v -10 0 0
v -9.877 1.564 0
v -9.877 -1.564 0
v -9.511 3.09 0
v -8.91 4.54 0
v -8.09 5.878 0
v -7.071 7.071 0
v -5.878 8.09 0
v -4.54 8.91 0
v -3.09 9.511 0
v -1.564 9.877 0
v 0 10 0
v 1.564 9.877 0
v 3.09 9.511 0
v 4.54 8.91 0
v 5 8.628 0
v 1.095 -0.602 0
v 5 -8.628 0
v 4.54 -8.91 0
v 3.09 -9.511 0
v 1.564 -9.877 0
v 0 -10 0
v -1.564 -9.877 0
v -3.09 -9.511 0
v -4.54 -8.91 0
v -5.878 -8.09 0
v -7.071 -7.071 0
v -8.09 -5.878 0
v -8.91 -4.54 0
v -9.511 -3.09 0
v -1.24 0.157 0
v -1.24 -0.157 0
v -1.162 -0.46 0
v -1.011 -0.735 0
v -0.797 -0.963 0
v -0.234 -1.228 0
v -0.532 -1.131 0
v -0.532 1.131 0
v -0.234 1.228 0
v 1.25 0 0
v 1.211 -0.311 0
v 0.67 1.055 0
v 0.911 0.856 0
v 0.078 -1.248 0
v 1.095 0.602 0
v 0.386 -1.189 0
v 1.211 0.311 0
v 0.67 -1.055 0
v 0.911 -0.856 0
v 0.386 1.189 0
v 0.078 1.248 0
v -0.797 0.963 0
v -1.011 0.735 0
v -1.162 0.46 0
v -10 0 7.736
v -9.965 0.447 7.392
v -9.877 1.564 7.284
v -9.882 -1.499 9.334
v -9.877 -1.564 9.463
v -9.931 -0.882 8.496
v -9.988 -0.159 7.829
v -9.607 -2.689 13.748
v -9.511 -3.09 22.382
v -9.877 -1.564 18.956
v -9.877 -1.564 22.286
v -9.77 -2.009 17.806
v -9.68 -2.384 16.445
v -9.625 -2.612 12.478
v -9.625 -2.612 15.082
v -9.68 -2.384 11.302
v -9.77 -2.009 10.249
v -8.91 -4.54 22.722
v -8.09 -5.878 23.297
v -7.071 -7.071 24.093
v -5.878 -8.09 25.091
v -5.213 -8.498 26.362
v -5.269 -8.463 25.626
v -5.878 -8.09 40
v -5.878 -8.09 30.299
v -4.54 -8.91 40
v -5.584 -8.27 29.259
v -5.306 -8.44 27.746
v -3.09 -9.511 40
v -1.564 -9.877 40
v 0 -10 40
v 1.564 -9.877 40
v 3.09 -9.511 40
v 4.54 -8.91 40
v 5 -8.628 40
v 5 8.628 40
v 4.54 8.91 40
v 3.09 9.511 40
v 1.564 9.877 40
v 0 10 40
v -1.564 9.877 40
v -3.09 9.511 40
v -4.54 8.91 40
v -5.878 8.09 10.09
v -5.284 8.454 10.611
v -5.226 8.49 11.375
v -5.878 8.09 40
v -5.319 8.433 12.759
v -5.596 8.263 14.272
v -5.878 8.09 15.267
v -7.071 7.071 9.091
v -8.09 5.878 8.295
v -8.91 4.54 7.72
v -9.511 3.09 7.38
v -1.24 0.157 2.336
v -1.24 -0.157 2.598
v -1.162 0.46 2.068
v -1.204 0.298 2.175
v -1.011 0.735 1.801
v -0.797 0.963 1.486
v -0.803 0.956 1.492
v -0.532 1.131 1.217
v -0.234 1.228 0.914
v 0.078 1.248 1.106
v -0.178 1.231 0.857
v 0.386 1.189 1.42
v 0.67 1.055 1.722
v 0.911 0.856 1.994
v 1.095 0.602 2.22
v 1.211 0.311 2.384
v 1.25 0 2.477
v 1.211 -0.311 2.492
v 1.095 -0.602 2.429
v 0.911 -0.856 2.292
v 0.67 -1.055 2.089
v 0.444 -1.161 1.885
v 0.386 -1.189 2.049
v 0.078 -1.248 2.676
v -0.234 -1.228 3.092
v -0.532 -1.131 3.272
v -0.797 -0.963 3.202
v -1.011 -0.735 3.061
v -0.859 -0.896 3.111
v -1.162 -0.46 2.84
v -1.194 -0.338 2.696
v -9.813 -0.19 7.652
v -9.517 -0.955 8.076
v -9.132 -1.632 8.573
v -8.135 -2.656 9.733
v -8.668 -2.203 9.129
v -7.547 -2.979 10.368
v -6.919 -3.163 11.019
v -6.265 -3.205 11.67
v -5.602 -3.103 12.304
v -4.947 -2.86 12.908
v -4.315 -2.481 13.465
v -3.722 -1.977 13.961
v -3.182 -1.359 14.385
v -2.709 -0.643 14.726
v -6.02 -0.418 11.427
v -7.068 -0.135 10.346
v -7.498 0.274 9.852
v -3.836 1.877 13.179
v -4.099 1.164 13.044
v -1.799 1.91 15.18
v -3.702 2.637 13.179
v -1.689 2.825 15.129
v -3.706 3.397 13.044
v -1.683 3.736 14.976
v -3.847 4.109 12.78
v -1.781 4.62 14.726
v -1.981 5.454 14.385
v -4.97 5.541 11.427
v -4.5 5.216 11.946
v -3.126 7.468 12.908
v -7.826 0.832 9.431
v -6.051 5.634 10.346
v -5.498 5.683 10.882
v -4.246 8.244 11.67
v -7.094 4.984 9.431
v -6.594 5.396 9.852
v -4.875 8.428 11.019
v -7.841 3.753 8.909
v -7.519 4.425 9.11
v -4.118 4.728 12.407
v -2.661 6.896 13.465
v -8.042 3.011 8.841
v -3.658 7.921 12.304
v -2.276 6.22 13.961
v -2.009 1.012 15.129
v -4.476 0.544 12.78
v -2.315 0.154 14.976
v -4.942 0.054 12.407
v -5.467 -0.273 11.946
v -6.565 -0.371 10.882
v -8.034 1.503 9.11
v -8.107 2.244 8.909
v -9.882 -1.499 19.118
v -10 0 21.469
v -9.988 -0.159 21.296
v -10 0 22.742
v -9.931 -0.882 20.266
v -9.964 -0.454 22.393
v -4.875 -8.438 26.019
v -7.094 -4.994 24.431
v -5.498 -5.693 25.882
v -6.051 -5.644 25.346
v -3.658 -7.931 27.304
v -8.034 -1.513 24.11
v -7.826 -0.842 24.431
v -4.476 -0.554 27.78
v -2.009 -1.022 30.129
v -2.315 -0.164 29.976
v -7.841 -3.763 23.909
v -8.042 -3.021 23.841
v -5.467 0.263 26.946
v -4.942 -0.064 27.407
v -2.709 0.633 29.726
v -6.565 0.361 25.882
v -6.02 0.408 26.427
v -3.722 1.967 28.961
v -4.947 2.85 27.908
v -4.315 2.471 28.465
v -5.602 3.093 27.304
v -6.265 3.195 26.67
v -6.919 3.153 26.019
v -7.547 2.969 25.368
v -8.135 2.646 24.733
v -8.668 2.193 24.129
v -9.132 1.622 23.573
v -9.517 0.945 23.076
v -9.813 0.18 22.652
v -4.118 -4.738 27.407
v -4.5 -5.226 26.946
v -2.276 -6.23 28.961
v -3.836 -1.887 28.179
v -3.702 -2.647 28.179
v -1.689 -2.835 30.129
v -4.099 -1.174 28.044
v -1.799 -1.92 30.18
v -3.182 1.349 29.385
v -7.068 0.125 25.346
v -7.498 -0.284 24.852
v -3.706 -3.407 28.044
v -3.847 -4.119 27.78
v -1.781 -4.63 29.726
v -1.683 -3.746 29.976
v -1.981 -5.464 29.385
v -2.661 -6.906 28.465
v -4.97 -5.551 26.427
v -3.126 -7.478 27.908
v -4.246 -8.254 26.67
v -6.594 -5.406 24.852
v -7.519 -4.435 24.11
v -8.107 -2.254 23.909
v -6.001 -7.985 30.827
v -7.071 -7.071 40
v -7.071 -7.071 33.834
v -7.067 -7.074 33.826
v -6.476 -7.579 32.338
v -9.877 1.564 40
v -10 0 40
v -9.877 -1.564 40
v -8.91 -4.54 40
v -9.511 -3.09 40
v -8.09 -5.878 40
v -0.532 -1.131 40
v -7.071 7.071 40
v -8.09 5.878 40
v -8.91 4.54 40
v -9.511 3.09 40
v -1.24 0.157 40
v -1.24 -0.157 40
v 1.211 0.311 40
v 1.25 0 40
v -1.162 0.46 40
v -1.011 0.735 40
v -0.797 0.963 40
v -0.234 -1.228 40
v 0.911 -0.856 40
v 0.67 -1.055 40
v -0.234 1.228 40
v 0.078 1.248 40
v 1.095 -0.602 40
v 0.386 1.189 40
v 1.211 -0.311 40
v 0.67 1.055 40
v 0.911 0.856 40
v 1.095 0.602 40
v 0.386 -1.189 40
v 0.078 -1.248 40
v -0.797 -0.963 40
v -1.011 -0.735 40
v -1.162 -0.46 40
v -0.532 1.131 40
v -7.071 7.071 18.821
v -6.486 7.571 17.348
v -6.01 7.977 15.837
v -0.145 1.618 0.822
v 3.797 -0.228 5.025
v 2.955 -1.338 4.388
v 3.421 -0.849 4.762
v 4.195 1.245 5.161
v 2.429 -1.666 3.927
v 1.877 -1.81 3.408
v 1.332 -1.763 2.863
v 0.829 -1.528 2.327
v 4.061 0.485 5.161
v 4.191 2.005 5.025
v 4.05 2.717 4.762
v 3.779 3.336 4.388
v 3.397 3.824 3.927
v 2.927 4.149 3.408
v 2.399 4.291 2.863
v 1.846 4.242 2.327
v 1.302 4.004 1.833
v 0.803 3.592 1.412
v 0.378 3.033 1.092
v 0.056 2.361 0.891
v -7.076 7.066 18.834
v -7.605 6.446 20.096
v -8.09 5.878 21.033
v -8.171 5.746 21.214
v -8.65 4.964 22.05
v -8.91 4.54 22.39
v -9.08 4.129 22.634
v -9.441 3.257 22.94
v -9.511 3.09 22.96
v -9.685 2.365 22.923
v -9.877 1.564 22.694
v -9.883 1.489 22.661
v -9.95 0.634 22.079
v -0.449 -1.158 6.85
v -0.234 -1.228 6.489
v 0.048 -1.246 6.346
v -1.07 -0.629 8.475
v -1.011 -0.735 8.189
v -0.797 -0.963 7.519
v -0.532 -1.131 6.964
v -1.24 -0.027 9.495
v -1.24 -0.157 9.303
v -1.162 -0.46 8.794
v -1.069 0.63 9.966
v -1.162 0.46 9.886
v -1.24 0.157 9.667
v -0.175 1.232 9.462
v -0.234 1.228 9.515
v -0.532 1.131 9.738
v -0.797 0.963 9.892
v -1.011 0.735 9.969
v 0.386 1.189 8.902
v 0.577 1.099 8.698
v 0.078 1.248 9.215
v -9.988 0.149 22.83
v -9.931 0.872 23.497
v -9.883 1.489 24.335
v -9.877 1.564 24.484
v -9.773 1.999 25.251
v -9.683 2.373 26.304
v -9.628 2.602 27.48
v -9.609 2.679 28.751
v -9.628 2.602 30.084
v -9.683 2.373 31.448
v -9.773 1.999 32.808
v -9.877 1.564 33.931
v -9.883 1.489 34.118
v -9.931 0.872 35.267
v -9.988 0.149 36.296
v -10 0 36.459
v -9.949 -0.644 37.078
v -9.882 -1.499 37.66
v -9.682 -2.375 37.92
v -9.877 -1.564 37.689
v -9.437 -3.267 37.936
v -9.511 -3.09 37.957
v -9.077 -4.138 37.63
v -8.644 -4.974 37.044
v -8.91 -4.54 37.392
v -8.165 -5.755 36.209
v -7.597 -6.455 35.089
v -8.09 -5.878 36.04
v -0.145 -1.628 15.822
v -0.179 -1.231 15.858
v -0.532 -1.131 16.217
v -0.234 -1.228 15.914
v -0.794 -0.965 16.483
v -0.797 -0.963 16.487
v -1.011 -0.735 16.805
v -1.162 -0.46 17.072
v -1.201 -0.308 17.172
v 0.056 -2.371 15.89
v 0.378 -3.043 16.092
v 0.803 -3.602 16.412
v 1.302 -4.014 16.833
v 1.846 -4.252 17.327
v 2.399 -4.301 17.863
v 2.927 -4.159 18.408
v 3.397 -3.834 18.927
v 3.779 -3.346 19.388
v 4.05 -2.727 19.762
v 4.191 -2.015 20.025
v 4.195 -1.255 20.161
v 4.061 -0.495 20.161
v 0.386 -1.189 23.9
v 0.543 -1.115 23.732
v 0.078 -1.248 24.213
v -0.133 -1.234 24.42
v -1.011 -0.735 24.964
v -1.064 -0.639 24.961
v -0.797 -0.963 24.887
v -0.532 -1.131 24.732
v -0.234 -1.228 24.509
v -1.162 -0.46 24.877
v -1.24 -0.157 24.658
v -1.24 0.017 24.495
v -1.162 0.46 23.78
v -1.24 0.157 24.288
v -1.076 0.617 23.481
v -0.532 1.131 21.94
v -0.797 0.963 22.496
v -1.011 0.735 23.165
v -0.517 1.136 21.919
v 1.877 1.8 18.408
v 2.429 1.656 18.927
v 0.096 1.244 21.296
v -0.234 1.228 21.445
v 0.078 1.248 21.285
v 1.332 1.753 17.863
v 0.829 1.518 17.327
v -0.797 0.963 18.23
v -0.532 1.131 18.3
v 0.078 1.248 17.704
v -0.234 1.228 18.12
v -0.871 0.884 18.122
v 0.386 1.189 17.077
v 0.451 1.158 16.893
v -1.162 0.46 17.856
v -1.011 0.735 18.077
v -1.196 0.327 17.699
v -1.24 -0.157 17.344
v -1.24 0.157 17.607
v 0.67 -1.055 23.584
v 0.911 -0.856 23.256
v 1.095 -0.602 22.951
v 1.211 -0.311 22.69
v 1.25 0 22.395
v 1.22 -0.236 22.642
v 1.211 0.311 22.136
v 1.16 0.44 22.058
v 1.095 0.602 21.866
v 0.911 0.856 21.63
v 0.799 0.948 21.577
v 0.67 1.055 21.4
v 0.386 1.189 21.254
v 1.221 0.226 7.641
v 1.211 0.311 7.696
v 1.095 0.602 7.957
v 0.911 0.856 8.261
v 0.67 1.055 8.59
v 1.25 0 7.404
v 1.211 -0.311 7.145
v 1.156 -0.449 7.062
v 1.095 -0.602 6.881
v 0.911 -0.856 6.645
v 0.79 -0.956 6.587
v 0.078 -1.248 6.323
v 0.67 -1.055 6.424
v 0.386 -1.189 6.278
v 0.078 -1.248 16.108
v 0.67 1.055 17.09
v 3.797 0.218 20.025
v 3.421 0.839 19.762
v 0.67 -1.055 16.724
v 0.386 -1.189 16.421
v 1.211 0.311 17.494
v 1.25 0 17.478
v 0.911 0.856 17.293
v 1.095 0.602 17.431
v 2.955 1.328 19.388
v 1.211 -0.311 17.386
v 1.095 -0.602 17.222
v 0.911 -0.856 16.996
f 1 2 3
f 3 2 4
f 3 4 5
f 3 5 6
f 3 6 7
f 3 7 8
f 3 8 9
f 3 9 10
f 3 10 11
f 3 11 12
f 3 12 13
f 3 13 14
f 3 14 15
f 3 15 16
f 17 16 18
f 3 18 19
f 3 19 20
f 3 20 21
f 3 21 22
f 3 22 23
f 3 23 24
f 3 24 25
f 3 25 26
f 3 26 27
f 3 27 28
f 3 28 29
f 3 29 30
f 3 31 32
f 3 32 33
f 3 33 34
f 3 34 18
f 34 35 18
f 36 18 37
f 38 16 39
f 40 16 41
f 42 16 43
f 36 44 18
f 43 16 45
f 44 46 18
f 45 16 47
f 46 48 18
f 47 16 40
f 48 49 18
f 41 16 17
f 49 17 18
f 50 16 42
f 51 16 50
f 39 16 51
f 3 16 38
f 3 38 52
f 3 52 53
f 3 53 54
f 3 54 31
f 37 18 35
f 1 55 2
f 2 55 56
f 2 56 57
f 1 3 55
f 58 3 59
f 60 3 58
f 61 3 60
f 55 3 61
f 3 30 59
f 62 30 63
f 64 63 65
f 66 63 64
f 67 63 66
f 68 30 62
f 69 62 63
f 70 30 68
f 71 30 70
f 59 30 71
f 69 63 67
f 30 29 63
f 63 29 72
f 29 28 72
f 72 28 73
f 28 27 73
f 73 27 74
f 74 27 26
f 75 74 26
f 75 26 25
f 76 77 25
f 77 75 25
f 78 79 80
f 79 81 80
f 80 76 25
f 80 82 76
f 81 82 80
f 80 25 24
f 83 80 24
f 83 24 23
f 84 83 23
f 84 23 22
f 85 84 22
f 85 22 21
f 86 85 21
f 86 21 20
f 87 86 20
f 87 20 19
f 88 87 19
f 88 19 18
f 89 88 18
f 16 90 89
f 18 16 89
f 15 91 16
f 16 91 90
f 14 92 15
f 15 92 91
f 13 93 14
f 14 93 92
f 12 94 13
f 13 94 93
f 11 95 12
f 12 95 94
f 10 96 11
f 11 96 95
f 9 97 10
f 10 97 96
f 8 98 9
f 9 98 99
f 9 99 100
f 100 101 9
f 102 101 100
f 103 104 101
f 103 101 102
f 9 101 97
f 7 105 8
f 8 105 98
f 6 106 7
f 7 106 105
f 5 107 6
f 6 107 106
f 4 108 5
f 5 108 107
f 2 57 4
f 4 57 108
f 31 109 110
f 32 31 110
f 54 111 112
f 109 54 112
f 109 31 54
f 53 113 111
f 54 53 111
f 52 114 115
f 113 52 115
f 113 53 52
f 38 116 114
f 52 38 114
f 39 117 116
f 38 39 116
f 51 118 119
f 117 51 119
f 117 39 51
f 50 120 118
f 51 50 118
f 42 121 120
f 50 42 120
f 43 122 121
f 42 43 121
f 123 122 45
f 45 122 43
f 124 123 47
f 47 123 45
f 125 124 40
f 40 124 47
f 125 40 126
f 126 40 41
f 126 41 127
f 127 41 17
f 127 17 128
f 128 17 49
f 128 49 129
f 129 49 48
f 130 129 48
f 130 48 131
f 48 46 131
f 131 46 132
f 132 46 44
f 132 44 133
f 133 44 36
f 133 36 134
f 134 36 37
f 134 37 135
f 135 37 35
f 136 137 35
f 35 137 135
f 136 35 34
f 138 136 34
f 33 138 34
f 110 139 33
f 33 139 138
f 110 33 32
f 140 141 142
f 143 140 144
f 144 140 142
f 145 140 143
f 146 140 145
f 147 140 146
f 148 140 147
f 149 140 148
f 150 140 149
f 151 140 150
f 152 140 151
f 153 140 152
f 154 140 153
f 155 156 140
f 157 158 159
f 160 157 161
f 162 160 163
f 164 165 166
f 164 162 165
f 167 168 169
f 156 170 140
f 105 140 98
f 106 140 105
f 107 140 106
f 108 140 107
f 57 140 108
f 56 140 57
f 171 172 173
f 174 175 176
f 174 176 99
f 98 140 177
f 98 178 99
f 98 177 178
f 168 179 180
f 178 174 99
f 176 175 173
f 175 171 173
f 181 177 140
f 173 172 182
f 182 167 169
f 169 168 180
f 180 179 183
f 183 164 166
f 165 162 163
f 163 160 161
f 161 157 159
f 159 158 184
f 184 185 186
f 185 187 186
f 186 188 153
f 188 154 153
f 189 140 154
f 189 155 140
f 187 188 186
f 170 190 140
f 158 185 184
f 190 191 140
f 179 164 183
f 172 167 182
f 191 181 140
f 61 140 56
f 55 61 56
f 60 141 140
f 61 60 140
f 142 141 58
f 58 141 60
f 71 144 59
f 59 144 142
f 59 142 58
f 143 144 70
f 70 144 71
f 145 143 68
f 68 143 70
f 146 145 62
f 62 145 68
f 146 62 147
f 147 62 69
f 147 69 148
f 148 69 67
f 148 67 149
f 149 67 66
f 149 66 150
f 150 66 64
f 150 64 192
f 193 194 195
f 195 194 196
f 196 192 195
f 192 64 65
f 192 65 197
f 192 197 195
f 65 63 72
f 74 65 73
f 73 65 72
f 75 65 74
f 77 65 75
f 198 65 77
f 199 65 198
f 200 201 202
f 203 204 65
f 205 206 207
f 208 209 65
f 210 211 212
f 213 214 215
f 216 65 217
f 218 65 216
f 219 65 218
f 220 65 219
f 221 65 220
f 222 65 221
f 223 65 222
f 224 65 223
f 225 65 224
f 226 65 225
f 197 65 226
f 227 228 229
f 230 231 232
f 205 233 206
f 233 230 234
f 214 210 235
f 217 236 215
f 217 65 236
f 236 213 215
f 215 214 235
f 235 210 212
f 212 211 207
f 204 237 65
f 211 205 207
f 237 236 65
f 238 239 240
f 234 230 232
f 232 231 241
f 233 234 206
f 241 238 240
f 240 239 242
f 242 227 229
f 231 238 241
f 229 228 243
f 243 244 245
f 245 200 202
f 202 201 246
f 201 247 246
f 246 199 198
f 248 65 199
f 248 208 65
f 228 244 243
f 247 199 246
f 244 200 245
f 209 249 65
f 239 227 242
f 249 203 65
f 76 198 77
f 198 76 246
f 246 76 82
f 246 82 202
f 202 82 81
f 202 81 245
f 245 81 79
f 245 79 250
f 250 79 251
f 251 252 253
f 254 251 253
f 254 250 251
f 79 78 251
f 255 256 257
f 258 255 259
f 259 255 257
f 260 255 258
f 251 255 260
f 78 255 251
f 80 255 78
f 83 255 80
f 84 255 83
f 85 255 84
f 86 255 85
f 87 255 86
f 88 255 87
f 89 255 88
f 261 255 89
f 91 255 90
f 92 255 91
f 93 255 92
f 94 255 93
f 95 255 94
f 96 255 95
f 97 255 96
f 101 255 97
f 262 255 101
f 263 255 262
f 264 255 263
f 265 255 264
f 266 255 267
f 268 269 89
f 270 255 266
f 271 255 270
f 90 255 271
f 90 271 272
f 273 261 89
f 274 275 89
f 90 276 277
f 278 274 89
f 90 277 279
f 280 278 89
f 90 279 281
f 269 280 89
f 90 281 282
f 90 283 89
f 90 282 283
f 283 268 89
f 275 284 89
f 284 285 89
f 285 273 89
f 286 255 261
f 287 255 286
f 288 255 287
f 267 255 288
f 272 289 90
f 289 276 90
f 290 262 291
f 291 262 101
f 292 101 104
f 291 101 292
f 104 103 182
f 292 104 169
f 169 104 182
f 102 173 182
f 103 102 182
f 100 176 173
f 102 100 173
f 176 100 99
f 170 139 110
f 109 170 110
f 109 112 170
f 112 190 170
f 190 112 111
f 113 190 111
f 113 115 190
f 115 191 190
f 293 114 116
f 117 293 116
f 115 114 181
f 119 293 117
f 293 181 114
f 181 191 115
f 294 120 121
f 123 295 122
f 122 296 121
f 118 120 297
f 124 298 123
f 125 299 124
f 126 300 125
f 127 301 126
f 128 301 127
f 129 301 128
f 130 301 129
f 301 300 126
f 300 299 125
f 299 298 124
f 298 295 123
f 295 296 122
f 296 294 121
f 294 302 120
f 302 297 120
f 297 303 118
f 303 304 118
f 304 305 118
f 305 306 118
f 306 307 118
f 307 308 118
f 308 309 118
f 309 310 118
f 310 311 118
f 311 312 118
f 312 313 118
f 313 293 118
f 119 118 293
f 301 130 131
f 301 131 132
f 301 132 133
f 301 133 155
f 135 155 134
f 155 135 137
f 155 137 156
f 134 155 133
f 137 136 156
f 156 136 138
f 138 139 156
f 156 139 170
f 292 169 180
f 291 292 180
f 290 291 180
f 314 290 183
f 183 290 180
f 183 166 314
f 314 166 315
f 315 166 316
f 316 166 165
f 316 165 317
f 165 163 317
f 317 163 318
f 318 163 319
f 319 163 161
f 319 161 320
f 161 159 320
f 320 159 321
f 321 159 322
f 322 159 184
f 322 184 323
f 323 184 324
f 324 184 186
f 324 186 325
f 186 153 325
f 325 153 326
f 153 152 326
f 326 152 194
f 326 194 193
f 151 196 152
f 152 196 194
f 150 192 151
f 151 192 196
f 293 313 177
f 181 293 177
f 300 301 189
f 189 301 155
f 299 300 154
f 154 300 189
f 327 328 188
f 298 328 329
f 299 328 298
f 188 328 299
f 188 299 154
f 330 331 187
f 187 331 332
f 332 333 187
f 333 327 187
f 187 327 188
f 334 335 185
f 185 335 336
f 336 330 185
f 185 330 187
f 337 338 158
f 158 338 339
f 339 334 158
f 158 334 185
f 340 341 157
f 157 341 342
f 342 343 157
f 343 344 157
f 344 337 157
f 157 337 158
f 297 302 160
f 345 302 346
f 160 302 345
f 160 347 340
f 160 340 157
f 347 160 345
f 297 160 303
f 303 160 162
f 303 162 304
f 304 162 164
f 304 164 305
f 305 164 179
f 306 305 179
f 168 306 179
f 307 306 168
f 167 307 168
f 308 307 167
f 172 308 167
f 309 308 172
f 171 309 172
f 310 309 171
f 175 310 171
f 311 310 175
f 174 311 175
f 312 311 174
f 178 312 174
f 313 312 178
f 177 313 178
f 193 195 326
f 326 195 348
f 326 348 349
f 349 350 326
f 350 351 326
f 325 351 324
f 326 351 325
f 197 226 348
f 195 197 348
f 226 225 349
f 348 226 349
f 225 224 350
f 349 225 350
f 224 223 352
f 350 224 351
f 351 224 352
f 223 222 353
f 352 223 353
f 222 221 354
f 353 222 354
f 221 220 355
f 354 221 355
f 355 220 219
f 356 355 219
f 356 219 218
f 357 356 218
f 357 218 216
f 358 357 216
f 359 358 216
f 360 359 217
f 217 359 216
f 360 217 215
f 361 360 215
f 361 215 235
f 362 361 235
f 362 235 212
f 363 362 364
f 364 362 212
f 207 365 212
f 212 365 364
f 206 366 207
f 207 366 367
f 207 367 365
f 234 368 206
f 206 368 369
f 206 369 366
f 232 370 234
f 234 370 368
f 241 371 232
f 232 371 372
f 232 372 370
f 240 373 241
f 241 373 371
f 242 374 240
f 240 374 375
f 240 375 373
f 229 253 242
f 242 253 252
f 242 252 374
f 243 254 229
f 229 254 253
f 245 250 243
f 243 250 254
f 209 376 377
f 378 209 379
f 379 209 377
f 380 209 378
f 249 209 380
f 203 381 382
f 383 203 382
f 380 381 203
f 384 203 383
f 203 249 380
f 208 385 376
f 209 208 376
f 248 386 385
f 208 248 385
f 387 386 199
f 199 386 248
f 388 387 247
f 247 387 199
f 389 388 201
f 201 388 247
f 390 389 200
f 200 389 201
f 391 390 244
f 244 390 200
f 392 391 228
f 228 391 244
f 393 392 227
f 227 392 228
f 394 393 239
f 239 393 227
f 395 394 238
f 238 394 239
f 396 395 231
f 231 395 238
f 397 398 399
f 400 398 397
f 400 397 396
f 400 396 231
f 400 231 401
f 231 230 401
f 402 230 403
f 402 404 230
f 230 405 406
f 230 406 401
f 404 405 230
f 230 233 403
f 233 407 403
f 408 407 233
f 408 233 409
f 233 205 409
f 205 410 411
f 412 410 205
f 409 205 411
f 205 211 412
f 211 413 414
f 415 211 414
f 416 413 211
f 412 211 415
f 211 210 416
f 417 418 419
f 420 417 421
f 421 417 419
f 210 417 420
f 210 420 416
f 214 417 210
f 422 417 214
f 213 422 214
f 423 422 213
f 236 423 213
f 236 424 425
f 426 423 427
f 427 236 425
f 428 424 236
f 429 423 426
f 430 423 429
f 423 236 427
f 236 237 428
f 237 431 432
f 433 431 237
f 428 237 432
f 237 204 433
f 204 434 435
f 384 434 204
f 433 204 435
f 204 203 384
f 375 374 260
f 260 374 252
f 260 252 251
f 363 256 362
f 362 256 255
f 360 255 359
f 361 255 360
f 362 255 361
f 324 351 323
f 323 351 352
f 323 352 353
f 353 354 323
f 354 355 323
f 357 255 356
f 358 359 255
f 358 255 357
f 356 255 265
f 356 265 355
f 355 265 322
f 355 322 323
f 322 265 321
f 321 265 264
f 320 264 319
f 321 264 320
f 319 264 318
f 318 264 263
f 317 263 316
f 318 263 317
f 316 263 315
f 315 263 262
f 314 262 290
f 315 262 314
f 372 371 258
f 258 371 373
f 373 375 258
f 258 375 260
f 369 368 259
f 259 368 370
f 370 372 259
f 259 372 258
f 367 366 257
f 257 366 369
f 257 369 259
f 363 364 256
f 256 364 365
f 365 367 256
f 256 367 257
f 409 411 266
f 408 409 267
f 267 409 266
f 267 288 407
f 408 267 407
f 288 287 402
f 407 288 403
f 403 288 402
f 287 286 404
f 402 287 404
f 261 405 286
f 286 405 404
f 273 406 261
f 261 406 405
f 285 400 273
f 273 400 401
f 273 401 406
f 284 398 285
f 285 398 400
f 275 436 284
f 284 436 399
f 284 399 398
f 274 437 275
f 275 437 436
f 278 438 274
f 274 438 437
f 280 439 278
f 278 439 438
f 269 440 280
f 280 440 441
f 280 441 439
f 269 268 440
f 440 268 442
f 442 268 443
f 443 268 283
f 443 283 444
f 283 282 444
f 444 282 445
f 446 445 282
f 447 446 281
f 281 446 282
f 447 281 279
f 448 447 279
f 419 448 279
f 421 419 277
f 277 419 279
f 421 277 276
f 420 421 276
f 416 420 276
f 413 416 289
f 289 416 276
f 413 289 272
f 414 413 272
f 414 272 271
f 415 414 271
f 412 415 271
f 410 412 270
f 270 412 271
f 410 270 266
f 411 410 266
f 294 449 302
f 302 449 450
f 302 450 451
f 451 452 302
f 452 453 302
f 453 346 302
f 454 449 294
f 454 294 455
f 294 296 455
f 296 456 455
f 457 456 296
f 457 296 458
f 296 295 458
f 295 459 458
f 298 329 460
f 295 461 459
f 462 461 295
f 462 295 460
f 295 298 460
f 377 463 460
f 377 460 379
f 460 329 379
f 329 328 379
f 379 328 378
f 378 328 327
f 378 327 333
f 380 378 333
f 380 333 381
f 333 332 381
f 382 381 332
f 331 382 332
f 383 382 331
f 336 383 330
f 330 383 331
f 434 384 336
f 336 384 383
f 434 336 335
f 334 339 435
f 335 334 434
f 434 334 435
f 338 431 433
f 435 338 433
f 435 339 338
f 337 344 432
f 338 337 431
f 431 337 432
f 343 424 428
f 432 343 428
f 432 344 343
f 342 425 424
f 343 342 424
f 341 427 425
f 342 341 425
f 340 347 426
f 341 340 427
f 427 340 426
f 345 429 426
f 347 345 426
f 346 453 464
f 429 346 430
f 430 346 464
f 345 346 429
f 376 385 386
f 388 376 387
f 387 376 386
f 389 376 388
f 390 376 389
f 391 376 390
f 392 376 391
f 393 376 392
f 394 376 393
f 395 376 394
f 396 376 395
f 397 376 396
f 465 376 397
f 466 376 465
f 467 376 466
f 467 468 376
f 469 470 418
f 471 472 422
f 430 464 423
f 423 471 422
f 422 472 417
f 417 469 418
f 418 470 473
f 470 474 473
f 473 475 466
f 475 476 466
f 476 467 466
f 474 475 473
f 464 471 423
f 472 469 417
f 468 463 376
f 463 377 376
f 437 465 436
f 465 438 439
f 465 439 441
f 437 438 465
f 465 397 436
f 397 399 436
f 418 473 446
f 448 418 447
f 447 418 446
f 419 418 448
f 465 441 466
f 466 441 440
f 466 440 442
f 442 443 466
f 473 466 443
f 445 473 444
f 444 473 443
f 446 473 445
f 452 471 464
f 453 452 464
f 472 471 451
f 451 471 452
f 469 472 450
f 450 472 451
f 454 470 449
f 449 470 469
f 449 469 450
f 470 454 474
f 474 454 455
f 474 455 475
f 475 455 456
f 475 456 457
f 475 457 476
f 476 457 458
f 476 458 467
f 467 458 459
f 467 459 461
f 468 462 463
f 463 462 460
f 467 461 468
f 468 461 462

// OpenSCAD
// represents filament
//cylinder(r=1.75/2, h=100, $fn=10, center=true);

tip_len = 5.4;
tip_base_r = 4.6/2;
tip_top_r = .5;

stem_len = 5;
stem_r = 5.6/2;

barrel_r = 10.7/2;
barrel_len = 27;
curve_z_offset = barrel_r - sqrt(pow(barrel_r, 2) - pow(stem_r, 2));

handle_r = 12.4/2;
handle_len = (5.5*25.4) - (tip_len + stem_len + barrel_len);

module marker(tip_x, tip_y, tip_z, angle) {
	translate([tip_x, tip_y, tip_z]) rotate(a=angle) {
		translate([0,0,-tip_len]) color([0, 0, 0]) cylinder(r1=tip_base_r, r2=tip_top_r, h=tip_len);
		color([.5, .5, .5]) {
			translate([0, 0, -tip_len - stem_len]) cylinder(r=stem_r, h=stem_len, $fn=25);
			translate([0, 0, -tip_len - stem_len - barrel_r + curve_z_offset]) sphere(r=barrel_r, $fn=40);
			translate([0, 0, -tip_len - stem_len - barrel_r + curve_z_offset - (barrel_len - barrel_r)]) {
				cylinder(r=barrel_r, h=barrel_len - barrel_r, $fn=40);
			}
		}
		translate([0,0,-tip_len - stem_len - barrel_r + curve_z_offset - (barrel_len - barrel_r) - handle_len]) cylinder(r=handle_r, h=handle_len, $fn=40);
	}
}

module marker_channel(tip_x, tip_y, tip_z, angle) {
	translate([tip_x, tip_y, tip_z]) rotate(a=angle) union() {
		translate([0,0,-(tip_len + stem_len)*1.1]) cylinder(r=stem_r*1.1, h=(tip_len+stem_len)*1.1, $fn=25);
		translate([0, 0, -(tip_len + stem_len + 100) * 1.1 + .1]) {
			cylinder(r=barrel_r * 1.1, h=110, $fn=40);
		}
	}
}


// option #1
//marker(2,1,0,[0, 135, -30]);
//marker(-2,-1,0,[0, 135, -210]);


union() {

	difference() {
		translate([0, 0, 0]) cylinder(r=10, h=40, $fn=40);
	
		translate([0, 0, 3]) union() {
			//option #2
			% marker(2,1.25,0,[0, 135, -10]);
			marker_channel(2, 1.24, 0,[0, 135, -10]);
			% marker(2,-1.25,15,[0, 135, 10]);
			marker_channel(2,-1.25,15,[0, 135, 10]);
			
			cylinder(r=1.25, h=100, $fn=25, center=true);
		}
		
		//for (angle = [90, -90]) {
		//	rotate(a=[0,0,angle]) {
		//		translate([10, 0, 2.4])  cube([5, 5, 5], center=true);
		//		translate([10, 0, 4.8]) cylinder(r=3.5, h=5, $fn=25);
		//	}
		//}

		translate([5, -10, -.1]) cube([100, 100, 100]);
	}

	//intersection() {
	//	union() {
	//		for (angle = [90, -90]) {
	//			rotate(a=[0,0,angle]) {
	//				translate([10, 0, 42.4])  cube([5, 5, 5], center=true);
	//				translate([10, 0, 44.8]) cylinder(r=3.5, h=5, $fn=25);
	//			}
	//		}
	//	}
	//	translate([0,0,40]) cylinder(r=10, h=20, $fn=40);
	//}

}
